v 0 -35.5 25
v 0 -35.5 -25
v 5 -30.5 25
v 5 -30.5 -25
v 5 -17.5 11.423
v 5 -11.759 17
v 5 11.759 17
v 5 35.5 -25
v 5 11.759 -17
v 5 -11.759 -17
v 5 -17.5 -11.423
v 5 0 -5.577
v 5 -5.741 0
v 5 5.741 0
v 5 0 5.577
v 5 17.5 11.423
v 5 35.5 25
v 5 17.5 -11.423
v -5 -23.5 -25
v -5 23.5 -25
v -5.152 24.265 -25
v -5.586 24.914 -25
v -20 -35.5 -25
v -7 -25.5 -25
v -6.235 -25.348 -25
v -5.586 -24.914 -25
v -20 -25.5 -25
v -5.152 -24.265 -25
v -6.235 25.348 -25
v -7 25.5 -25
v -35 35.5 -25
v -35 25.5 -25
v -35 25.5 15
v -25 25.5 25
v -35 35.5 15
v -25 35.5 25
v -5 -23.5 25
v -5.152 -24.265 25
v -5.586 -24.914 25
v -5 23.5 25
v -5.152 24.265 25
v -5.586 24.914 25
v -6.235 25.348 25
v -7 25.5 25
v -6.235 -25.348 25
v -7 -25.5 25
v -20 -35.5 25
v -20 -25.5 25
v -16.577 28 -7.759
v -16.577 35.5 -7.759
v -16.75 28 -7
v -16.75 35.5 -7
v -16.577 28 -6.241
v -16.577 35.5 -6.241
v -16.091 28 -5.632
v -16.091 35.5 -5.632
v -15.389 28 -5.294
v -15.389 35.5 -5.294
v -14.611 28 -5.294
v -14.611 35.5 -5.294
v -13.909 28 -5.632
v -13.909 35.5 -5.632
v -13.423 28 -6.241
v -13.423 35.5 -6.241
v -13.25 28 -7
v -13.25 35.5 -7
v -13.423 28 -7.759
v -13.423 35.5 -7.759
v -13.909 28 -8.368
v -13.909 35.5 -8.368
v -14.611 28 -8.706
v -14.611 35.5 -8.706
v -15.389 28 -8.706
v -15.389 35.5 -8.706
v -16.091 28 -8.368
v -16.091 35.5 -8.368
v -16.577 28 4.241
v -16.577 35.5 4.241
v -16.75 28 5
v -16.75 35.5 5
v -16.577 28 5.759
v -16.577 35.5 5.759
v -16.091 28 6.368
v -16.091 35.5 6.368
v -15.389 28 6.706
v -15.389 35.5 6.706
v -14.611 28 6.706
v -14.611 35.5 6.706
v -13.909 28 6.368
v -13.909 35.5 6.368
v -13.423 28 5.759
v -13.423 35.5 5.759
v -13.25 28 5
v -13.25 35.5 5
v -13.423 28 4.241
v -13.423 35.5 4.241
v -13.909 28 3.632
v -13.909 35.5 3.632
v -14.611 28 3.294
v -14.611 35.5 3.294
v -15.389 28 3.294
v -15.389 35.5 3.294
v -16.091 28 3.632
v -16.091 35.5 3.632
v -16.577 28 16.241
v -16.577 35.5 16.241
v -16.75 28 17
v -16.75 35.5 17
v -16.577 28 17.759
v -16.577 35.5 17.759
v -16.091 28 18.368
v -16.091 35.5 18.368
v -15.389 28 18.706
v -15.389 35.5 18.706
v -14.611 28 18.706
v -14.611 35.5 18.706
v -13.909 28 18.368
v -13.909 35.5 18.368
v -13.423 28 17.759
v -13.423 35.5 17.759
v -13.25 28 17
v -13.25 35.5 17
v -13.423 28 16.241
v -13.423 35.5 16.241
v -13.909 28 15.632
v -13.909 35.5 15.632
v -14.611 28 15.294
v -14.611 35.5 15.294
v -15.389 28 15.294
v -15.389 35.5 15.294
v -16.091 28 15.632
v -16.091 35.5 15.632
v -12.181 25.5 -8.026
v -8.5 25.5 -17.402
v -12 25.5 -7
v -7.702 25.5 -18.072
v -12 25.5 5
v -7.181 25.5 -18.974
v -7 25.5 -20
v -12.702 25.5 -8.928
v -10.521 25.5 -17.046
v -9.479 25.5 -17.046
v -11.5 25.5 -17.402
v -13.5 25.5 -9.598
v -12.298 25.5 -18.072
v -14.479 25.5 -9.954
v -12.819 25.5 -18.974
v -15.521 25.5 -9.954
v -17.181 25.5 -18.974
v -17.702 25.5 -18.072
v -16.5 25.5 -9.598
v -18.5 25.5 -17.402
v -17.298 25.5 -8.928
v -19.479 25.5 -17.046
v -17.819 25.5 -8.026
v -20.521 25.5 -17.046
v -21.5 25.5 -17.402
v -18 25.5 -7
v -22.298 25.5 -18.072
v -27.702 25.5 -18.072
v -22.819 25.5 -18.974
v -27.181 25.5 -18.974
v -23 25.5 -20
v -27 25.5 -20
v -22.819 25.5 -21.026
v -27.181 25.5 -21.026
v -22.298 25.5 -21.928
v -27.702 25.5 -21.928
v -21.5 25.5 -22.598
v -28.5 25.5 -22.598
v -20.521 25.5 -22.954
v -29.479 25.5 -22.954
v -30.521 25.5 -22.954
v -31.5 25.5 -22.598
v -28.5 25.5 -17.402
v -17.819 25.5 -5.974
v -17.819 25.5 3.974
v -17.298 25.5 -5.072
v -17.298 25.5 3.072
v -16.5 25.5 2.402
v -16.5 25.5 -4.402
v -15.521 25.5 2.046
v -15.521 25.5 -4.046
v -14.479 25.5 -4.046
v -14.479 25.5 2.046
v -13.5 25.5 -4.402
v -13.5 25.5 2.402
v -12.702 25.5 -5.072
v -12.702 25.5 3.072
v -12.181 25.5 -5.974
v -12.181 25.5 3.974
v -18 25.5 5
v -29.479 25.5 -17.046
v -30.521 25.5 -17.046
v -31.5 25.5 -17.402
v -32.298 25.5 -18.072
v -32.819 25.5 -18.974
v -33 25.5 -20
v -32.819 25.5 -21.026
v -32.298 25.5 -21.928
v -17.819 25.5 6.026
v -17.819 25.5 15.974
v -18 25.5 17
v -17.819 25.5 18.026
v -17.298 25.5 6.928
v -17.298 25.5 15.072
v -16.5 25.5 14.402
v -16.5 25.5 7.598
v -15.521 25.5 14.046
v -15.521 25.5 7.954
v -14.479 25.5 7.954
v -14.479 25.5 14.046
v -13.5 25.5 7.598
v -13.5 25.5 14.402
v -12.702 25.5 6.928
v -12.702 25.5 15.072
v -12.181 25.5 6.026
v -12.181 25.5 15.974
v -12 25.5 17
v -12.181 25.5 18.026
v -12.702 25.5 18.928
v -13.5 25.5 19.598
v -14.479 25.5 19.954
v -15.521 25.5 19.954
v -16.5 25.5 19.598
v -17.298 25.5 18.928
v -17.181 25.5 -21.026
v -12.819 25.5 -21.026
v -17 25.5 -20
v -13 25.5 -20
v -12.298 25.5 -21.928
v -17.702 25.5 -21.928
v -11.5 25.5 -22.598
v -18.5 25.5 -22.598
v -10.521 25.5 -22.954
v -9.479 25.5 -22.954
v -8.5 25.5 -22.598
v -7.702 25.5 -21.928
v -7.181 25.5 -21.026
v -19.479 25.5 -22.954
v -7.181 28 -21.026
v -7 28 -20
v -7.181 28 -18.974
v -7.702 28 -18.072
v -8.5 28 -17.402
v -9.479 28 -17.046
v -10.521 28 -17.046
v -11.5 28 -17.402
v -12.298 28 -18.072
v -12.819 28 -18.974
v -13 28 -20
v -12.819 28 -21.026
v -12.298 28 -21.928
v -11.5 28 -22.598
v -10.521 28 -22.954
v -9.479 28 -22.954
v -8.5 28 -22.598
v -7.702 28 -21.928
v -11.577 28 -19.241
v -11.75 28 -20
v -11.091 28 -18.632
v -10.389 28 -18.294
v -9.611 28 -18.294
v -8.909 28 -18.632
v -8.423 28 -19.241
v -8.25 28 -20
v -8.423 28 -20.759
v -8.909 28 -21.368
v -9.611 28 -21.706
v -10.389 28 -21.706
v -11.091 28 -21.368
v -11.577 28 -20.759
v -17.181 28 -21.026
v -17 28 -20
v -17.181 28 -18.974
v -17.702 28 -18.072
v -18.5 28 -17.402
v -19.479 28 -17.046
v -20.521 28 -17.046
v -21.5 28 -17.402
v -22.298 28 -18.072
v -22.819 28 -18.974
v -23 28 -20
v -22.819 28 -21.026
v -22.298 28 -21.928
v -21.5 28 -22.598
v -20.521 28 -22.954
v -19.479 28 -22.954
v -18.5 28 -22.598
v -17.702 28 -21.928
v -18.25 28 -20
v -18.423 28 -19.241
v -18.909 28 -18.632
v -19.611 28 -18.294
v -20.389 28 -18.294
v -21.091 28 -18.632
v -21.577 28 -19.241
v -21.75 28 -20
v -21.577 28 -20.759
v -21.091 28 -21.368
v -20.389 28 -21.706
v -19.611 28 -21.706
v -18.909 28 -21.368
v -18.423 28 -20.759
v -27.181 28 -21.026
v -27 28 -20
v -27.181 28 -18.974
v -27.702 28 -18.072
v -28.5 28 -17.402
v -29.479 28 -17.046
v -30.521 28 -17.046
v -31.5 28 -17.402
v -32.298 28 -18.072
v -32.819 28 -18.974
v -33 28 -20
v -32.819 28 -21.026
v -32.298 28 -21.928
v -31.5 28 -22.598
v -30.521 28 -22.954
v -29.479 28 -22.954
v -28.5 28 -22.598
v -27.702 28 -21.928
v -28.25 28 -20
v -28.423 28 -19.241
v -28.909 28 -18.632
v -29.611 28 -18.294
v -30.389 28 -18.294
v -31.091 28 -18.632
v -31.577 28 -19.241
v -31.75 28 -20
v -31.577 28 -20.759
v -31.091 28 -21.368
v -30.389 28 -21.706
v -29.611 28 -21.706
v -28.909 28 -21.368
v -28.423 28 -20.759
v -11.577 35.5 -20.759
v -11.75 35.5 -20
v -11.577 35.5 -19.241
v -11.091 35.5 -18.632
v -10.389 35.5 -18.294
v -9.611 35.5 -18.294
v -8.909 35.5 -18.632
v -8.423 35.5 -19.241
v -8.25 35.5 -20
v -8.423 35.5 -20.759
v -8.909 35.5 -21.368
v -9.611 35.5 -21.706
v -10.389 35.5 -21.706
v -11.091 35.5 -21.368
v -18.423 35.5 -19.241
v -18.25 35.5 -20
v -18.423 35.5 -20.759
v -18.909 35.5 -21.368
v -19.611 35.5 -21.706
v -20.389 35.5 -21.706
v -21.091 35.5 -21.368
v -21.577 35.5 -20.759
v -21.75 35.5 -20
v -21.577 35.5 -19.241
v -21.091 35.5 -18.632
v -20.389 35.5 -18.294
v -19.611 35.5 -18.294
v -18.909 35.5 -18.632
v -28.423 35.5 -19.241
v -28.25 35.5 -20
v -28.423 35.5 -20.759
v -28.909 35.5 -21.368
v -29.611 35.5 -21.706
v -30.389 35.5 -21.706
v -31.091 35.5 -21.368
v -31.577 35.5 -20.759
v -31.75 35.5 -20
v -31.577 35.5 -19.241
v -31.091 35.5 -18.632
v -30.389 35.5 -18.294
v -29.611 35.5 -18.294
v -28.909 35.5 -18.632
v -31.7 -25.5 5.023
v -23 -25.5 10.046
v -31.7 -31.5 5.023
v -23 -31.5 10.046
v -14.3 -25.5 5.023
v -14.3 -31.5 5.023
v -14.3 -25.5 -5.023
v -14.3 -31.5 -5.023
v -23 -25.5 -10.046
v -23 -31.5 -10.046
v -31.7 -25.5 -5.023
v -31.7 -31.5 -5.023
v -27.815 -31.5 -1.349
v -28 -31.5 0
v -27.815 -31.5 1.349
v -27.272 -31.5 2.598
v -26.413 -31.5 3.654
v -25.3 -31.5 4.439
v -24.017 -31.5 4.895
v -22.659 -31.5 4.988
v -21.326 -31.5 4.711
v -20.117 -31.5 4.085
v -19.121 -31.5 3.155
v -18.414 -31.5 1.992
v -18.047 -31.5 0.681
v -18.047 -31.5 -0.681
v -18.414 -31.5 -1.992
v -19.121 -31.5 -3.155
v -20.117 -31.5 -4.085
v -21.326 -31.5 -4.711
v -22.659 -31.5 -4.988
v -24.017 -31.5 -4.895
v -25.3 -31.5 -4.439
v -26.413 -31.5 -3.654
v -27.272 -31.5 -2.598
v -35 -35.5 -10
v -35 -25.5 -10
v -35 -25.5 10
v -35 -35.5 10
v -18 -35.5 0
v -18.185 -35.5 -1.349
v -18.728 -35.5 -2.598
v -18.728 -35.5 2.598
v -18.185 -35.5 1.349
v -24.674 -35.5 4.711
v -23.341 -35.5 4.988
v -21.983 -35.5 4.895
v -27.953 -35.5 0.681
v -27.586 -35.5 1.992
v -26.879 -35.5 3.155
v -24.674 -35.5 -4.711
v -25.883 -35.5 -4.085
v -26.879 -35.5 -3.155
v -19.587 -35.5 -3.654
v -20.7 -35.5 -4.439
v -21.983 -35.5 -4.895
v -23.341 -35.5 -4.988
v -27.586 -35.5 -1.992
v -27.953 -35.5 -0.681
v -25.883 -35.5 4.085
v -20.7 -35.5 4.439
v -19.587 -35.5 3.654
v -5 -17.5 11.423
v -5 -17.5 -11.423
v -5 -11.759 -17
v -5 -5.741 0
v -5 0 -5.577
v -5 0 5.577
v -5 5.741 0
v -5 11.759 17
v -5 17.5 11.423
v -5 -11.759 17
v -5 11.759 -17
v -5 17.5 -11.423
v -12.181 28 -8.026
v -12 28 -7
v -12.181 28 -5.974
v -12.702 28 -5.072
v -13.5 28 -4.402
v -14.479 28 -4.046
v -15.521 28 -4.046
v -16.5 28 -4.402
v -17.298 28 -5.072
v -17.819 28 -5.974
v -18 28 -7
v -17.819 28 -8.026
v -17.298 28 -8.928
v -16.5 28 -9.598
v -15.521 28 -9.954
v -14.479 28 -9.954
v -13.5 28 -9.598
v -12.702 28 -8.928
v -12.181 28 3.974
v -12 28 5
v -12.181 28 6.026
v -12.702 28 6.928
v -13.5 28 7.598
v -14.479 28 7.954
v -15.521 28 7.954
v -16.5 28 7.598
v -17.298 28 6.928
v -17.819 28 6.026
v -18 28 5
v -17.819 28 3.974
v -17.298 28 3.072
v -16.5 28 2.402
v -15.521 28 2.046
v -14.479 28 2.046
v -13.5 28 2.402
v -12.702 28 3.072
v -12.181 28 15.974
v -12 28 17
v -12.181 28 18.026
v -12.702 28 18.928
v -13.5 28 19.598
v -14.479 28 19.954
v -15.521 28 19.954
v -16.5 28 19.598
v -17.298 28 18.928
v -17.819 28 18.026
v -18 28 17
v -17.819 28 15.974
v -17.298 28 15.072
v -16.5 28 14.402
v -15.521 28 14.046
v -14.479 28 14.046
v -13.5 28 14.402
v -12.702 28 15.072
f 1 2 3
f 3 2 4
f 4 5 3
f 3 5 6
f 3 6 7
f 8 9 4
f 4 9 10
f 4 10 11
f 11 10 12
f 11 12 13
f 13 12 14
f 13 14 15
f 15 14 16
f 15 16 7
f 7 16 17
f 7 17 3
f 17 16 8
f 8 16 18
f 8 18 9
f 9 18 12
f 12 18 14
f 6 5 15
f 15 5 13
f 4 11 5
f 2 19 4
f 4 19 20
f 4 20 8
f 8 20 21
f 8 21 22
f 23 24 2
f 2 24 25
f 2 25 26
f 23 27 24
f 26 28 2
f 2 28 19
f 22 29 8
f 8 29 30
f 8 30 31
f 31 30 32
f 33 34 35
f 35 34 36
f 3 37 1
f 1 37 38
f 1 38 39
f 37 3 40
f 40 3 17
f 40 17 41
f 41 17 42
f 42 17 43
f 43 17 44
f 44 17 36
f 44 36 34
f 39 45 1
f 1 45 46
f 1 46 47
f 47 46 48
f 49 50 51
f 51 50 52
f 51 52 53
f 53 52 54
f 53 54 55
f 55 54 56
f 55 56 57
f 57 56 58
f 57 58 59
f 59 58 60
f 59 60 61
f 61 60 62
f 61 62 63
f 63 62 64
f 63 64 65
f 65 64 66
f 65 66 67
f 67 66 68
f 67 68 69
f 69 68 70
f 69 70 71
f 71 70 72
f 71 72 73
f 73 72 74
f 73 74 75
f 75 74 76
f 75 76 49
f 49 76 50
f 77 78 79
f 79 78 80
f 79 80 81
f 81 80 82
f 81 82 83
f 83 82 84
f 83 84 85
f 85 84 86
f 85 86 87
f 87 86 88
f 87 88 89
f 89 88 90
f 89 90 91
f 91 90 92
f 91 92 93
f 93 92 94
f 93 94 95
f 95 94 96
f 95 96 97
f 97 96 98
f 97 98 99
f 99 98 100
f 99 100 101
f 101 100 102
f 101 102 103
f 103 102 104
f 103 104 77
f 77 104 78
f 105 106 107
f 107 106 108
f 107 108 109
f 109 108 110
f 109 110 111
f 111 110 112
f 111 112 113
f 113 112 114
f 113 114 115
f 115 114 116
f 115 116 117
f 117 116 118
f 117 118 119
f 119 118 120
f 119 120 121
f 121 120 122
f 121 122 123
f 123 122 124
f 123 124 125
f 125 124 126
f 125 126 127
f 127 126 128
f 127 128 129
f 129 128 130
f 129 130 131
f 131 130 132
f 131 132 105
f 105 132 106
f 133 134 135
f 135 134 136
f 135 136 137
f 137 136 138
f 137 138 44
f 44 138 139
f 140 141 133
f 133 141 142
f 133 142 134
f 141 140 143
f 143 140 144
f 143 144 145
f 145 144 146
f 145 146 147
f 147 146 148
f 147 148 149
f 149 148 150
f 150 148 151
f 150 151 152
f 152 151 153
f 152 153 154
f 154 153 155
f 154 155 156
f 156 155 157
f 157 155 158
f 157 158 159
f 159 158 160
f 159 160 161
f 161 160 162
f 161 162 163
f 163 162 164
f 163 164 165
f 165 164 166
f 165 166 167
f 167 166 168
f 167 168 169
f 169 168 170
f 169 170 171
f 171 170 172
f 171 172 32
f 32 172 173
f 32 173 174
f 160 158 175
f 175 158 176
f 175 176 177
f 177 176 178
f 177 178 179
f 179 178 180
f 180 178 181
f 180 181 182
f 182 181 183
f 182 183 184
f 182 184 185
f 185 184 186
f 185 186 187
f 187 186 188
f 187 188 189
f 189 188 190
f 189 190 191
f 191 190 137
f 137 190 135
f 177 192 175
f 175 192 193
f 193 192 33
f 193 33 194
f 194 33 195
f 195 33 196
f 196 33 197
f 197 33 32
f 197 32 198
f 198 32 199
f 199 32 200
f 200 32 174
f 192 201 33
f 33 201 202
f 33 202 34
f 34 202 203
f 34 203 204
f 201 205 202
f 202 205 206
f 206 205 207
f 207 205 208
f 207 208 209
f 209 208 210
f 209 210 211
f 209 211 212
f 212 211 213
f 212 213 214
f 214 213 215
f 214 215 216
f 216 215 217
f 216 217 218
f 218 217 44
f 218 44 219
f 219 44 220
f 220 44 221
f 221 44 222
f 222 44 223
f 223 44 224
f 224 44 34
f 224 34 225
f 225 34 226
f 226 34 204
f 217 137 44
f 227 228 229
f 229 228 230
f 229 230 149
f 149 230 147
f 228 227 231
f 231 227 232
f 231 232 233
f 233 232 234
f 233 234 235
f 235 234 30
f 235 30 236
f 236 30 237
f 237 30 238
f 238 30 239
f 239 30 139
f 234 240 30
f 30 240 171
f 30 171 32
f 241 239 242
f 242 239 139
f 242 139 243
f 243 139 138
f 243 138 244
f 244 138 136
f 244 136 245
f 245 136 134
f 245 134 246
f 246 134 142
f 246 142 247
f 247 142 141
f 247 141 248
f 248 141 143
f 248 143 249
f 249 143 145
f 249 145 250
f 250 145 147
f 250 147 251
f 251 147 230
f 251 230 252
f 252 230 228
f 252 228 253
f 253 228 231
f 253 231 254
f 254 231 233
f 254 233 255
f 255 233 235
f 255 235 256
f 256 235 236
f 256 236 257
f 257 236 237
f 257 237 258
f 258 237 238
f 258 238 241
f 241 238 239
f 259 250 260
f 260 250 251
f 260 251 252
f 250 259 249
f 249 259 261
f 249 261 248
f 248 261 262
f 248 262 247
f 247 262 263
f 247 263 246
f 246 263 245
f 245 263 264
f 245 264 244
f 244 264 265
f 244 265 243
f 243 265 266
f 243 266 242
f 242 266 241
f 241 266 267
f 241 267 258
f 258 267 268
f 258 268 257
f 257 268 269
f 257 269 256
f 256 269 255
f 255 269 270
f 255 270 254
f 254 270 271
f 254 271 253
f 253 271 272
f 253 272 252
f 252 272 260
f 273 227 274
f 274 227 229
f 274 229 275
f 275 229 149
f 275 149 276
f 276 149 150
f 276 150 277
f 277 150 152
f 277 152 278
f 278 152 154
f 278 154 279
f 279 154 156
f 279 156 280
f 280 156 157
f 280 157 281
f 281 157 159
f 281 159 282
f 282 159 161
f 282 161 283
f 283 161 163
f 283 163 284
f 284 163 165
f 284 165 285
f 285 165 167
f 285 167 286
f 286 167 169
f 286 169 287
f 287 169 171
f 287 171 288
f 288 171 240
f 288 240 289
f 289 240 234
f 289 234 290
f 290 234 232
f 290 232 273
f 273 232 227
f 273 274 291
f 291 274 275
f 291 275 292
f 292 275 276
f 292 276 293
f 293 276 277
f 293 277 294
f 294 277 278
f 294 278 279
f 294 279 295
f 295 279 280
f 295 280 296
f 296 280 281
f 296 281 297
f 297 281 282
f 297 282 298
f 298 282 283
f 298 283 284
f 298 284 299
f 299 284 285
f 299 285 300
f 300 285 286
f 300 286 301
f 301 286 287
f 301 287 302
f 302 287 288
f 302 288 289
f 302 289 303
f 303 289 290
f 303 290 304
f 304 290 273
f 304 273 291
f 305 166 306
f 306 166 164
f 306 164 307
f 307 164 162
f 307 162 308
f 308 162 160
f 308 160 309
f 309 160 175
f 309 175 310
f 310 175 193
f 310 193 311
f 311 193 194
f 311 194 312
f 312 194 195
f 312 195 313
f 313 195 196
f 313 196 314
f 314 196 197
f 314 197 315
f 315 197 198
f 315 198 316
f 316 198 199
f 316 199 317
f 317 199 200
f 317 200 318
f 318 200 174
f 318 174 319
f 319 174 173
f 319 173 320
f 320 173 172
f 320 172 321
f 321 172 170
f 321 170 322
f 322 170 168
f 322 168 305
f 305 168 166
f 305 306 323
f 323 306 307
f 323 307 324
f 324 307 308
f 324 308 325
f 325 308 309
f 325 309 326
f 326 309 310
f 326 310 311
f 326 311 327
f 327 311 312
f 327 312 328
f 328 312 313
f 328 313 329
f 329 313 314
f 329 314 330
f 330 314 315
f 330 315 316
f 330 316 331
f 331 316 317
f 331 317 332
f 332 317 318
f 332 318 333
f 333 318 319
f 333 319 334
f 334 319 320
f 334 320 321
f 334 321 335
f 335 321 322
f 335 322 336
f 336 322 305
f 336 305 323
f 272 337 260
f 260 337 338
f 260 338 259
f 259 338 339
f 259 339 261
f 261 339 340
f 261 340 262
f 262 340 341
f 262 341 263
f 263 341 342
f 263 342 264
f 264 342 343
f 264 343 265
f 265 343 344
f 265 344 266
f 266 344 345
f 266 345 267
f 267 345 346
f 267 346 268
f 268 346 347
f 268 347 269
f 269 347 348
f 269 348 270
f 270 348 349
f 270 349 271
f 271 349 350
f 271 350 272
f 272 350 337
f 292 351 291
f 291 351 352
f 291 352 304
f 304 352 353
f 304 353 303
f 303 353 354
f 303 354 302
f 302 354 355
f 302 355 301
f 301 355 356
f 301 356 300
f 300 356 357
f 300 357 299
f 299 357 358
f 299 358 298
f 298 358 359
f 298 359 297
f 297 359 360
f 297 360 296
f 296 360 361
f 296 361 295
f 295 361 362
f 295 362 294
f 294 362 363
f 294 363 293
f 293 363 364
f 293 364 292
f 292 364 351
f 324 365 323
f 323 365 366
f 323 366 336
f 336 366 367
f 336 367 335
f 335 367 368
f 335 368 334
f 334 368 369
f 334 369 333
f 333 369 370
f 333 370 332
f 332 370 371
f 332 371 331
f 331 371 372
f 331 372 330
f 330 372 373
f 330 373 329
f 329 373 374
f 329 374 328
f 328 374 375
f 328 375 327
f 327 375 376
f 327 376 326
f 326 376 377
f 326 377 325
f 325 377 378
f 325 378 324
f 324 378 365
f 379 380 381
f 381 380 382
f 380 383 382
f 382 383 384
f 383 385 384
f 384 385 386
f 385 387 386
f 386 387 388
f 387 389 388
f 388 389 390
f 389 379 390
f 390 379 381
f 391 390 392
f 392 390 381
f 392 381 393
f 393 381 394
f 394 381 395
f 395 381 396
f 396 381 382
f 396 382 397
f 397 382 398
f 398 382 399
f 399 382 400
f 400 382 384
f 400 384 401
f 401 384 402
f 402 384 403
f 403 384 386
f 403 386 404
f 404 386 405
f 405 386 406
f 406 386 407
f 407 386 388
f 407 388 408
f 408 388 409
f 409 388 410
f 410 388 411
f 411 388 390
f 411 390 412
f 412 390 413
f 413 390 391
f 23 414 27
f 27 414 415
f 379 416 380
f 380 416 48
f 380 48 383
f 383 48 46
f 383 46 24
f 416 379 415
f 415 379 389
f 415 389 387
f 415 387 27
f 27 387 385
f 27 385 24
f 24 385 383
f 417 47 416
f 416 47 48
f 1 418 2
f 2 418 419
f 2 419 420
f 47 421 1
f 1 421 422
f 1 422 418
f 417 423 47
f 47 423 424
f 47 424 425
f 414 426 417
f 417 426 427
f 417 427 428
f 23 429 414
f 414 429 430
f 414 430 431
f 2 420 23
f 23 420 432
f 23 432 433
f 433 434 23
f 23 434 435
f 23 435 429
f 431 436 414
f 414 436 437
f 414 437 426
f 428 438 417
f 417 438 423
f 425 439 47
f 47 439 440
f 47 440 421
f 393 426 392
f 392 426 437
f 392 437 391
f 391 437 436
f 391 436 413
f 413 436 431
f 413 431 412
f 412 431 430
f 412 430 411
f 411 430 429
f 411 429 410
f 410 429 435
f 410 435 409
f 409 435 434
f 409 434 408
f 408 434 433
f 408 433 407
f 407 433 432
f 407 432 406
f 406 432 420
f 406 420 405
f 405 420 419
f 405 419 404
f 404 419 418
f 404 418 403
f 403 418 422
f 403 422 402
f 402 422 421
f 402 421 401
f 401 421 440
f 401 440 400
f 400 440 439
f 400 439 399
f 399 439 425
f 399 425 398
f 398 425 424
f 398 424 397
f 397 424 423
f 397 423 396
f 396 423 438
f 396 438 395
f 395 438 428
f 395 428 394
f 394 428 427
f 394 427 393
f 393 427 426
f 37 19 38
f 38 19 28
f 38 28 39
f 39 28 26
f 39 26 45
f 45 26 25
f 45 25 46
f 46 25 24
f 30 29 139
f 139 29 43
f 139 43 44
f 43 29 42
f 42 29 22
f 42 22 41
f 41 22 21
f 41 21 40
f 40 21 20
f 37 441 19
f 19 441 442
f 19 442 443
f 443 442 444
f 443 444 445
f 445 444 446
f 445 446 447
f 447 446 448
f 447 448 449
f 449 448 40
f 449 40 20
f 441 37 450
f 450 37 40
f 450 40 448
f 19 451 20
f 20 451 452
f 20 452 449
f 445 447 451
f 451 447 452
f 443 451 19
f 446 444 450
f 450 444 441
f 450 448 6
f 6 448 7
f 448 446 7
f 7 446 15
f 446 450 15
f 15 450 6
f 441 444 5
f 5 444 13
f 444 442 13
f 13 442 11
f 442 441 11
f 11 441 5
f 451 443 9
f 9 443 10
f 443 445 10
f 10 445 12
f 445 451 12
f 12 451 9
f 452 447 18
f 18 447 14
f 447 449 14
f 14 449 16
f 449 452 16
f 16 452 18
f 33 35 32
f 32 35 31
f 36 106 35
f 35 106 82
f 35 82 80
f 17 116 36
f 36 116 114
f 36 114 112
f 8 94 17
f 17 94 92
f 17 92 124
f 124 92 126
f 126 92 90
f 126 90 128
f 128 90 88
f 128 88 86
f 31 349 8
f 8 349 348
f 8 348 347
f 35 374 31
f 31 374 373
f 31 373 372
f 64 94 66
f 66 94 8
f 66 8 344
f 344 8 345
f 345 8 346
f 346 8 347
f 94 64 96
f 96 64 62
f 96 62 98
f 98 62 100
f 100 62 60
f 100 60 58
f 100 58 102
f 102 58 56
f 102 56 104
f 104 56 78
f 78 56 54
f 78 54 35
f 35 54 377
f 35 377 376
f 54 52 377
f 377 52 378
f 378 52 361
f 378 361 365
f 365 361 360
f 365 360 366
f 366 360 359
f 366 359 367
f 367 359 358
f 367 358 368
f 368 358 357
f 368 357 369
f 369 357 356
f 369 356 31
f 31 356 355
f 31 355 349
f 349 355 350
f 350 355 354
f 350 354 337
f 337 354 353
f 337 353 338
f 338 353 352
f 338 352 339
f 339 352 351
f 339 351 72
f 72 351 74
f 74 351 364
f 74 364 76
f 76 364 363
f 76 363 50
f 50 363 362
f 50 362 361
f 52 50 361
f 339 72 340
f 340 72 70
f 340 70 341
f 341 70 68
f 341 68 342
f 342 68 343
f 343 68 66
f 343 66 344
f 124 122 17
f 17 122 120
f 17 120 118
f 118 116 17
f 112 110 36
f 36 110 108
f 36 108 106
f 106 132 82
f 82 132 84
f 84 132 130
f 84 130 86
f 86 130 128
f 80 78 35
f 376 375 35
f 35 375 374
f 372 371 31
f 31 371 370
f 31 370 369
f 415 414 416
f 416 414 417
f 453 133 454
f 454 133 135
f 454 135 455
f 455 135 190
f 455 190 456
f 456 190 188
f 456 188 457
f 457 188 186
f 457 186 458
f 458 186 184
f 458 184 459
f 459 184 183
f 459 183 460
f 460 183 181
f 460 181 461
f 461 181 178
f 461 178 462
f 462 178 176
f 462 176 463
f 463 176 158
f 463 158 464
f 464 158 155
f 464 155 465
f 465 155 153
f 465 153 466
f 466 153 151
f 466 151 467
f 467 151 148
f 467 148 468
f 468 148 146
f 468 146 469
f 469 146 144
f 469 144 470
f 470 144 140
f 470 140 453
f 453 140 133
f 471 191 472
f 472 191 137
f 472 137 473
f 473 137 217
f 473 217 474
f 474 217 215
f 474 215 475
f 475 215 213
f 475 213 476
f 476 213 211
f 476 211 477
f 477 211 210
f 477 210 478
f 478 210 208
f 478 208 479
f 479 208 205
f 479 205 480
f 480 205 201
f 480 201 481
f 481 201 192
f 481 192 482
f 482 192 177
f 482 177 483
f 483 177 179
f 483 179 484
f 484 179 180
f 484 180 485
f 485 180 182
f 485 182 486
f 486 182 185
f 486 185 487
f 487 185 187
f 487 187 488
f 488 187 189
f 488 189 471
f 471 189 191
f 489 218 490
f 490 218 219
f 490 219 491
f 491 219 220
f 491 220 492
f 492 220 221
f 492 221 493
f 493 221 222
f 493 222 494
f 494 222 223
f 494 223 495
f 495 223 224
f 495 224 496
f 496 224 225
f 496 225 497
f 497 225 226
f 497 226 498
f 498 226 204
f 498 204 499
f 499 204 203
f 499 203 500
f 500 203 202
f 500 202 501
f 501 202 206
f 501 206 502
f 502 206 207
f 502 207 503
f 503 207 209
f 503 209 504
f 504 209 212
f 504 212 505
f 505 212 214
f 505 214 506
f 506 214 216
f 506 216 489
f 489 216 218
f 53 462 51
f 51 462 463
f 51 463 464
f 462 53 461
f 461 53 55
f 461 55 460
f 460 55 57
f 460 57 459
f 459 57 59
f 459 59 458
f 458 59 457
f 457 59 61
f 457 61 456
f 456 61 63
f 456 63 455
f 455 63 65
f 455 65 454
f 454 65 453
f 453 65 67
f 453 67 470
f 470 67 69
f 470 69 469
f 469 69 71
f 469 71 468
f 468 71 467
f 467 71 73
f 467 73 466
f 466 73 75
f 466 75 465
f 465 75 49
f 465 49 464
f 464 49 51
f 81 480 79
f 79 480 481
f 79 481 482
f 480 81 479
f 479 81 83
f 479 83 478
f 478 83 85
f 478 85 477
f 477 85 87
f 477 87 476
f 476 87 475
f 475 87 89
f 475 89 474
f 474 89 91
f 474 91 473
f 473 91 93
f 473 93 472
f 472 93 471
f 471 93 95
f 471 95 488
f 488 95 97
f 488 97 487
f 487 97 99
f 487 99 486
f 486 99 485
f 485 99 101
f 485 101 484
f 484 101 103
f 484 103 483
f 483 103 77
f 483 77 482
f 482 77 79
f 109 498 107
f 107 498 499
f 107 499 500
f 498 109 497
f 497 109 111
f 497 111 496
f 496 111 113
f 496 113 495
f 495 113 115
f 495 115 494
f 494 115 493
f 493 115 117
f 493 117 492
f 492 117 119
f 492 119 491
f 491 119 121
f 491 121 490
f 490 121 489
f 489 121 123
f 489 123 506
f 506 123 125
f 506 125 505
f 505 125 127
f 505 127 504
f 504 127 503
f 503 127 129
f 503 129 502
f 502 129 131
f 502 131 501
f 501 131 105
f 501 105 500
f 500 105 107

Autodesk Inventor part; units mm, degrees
ref_plane "YZ Plane" through (0, 0, 0) normal (1, 0, 0) x (0, 1, 0)
ref_plane "XZ Plane" through (0, 0, 0) normal (0, 1, 0) x (-1, 0, 0)
sketch "스케치1" plane through (0, 0, 0) normal (0, 0, 1) x (1, 0, 0)
  line L0 (-5, -35.5) -> (5, -35.5)
  line L1 (5, -35.5) -> (5, 35.5)
  line L2 (5, 35.5) -> (-5, 35.5)
  line L3 (-5, 35.5) -> (-5, -35.5)
  line L4 (-5, -35.5) -> (5, 35.5) construction
  line L5 (5, -35.5) -> (-5, 35.5) construction
  line L6 (-5, 35.5) -> (-35, 35.5)
  line L7 (-35, 35.5) -> (-35, 25.5)
  line L8 (-35, 25.5) -> (-5, 25.5)
  line L9 (-5, 25.5) -> (-5, 35.5)
  line L10 (0, 0) -> (-11.0402, 0)
  line L11 (-5, -35.5) -> (-35, -35.5)
  line L12 (-35, -35.5) -> (-35, -25.5)
  line L13 (-35, -25.5) -> (-5, -25.5)
  point P0 (-5, 25.5)
  point P1 (-5, -25.5)
  dimension "d0" = 71
  dimension "d1" = 10
  dimension "d2" = 10
  dimension "d3" = 30
extrude "돌출1" add sketch "스케치1" along normal mid plane 50
ref_plane "작업 평면1" through (-15, 25.5, -25) normal (-1, 0, 0) x (0, 0, 1)
sketch "스케치5" plane through (-5, -25.5, 25) normal (-1, 0, 0) x (0, 0, 1)
  line L0 (-50, 0) -> (0, 0) projected
  line L1 (0, 51) -> (0, 0) projected
  line L2 (-50, 51) -> (0, 51) projected
  line L3 (-50, 0) -> (-50, 51) projected
  line L4 (-8, 43) -> (-8, 8)
  line L5 (-8, 8) -> (-42, 8)
  line L6 (-42, 8) -> (-42, 43)
  line L7 (-42, 43) -> (-8, 43)
  line L8 (-42, 43) -> (-8, 8) construction
  line L9 (-36.4234, 43) -> (-8, 13.7406)
  line L10 (-42, 37.2594) -> (-13.5766, 8)
  line L11 (-25, 25.5) -> (-25, 37.0316)
  line L12 (-8, 43) -> (-42, 8) construction
  line L13 (-13.5766, 43) -> (-42, 13.7406)
  line L14 (-8, 37.2594) -> (-36.4234, 8)
  point P0 (-42, 13.7406)
  point P1 (-30.5766, 25.5)
  point P2 (-8, 37.2594)
  point P3 (-19.4234, 25.5)
  point P4 (-25, 19.7594)
  point P5 (-36.4234, 8)
  point P6 (-25, 31.2406)
  dimension "d24" = 8
  dimension "d25" = 4
  dimension "d26" = 4
extrude "돌출5" cut sketch "스케치5" against normal blind 10 contours L4 L9 L14 | L13 L9 L7 | L10 L5 L14 | L13 L6 L10
fillet "모깎기1" radius 2 2 edges at (-5, 25.5, 0) (-5, -25.5, 0)
sketch "스케치6" plane through (-35, -35.5, 25) normal (0, -1, 0) x (1, 0, 0)
  circle A0 centre (12, -25) radius 5
  line L0 (0, -50) -> (0, 0) projected
  point P0 (35, -25)
  point P1 (0, -25)
  dimension "d30" = 10
  dimension "d31" = 12
extrude "돌출6" cut sketch "스케치6" against normal up to surface (10 mm away)
chamfer "모따기1" distance 15 angle 45 2 edges at (-35, -30.5, 25) (-35, -30.5, -25)
sketch "스케치7" plane through (-7, -25.5, 25) normal (0, 1, 0) x (1, 0, 0)
  circle A0 centre (-16, 25) radius 5 projected
  line L0 (-16, 35.0459) -> (-7.3, 30.0229)
  line L1 (-7.3, 30.0229) -> (-7.3, 19.9771)
  line L2 (-7.3, 19.9771) -> (-16, 14.9541)
  line L3 (-16, 14.9541) -> (-24.7, 19.9771)
  line L4 (-24.7, 19.9771) -> (-24.7, 30.0229)
  line L5 (-24.7, 30.0229) -> (-16, 35.0459)
  point P0 (7, 25)
  dimension "d37" = 17.4
extrude "돌출7" cut sketch "스케치7" against normal blind 6 contours A0 | L0 L1 L2 L3 L4 L5
sketch "스케치14" plane through (-35, 25.5, -25) normal (0, -1, 0) x (1, 0, 0)
  circle A0 centre (5, 5) radius 1.75
  circle A1 centre (5, 5) radius 3
  line L0 (0, 0) -> (40, 0) projected
  line L1 (0, 0) -> (0, 50) projected
  circle A2 centre (15, 5) radius 1.75
  circle A3 centre (15, 5) radius 3
  circle A4 centre (25, 5) radius 1.75
  circle A5 centre (25, 5) radius 3
  point P0 (35, 25)
  dimension "d74" = 3.5
  dimension "d75" = 6
  dimension "d76" = 5
  dimension "d77" = 5
  dimension "d80" = 10
extrude "돌출12" cut sketch "스케치14" against normal blind 10 contours A0 | A2 | A4
extrude "돌출13" cut sketch "스케치14" against normal blind 2.5 contours A1 | A3 | A4 | A5
sketch "스케치15" plane through (-35, 35.5, 25) normal (0, 1, 0) x (1, 0, 0)
  circle A0 centre (20, 8) radius 1.75
  line L0 (40, 0) -> (0, 0) projected
  line L1 (40, 50) -> (40, 0) projected
  circle A1 centre (20, 20) radius 1.75
  circle A2 centre (20, 32) radius 1.75
  point P0 (35, 25)
  point P1 (20, 0)
  dimension "d89" = 3.5
  dimension "d90" = 8
  dimension "d93" = 12
extrude "돌출14" cut sketch "스케치15" against normal up to surface (10 mm away)
chamfer "모따기3" distance 10 angle 45 1 edges at (-35, 30.5, 25)
chamfer "모따기4" distance 5 angle 45 1 edges at (5, -35.5, 0)
sketch "스케치16" plane through (-35, 25.5, -25) normal (0, -1, 0) x (1, 0, 0)
  circle A0 centre (20, 18) radius 1.75 projected
  circle A1 centre (20, 18) radius 3
  circle A2 centre (20, 30) radius 1.75 projected
  circle A3 centre (20, 30) radius 3
  circle A4 centre (20, 42) radius 1.75 projected
  circle A5 centre (20, 42) radius 3
  point P0 (35, 25)
  dimension "d106" = 6
  dimension "d107" = 6
  dimension "d108" = 6
extrude "돌출15" cut sketch "스케치16" against normal blind 2.5 contours A0 | A1 | A2 | A3 | A4 | A5
properties part number "전체 형상"
